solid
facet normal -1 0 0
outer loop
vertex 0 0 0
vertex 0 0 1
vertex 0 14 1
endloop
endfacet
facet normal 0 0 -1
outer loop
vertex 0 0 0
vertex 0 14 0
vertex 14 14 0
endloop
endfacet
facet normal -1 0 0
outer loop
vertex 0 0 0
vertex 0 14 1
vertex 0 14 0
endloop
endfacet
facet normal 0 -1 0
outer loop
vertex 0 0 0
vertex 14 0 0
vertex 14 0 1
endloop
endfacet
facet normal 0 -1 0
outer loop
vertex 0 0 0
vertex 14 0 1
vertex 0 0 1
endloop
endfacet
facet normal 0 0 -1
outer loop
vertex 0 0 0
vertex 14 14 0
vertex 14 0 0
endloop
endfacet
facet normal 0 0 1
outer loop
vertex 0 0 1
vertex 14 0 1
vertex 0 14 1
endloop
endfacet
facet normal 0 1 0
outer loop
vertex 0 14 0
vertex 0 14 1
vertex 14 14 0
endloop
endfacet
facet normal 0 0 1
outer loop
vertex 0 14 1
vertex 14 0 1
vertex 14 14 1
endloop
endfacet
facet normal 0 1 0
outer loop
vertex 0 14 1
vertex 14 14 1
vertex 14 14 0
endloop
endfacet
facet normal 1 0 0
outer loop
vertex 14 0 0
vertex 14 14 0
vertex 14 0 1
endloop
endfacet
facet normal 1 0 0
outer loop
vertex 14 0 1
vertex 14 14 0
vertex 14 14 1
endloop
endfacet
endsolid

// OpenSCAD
/* Warning, this is a very basic generator with a lot of approximation 
input data : [TQFP, 6XX, 14x14x1.0mm, 128, , B, C04-00418B]
generated by com.zoubworld.electronics.cad.model3d.Basic
Date : Sun Feb 15 10:50:48 CET 2026
*/

//body
color("black")
translate([0,0,0])
cube([14.0,14.0,1.0], center=false);
